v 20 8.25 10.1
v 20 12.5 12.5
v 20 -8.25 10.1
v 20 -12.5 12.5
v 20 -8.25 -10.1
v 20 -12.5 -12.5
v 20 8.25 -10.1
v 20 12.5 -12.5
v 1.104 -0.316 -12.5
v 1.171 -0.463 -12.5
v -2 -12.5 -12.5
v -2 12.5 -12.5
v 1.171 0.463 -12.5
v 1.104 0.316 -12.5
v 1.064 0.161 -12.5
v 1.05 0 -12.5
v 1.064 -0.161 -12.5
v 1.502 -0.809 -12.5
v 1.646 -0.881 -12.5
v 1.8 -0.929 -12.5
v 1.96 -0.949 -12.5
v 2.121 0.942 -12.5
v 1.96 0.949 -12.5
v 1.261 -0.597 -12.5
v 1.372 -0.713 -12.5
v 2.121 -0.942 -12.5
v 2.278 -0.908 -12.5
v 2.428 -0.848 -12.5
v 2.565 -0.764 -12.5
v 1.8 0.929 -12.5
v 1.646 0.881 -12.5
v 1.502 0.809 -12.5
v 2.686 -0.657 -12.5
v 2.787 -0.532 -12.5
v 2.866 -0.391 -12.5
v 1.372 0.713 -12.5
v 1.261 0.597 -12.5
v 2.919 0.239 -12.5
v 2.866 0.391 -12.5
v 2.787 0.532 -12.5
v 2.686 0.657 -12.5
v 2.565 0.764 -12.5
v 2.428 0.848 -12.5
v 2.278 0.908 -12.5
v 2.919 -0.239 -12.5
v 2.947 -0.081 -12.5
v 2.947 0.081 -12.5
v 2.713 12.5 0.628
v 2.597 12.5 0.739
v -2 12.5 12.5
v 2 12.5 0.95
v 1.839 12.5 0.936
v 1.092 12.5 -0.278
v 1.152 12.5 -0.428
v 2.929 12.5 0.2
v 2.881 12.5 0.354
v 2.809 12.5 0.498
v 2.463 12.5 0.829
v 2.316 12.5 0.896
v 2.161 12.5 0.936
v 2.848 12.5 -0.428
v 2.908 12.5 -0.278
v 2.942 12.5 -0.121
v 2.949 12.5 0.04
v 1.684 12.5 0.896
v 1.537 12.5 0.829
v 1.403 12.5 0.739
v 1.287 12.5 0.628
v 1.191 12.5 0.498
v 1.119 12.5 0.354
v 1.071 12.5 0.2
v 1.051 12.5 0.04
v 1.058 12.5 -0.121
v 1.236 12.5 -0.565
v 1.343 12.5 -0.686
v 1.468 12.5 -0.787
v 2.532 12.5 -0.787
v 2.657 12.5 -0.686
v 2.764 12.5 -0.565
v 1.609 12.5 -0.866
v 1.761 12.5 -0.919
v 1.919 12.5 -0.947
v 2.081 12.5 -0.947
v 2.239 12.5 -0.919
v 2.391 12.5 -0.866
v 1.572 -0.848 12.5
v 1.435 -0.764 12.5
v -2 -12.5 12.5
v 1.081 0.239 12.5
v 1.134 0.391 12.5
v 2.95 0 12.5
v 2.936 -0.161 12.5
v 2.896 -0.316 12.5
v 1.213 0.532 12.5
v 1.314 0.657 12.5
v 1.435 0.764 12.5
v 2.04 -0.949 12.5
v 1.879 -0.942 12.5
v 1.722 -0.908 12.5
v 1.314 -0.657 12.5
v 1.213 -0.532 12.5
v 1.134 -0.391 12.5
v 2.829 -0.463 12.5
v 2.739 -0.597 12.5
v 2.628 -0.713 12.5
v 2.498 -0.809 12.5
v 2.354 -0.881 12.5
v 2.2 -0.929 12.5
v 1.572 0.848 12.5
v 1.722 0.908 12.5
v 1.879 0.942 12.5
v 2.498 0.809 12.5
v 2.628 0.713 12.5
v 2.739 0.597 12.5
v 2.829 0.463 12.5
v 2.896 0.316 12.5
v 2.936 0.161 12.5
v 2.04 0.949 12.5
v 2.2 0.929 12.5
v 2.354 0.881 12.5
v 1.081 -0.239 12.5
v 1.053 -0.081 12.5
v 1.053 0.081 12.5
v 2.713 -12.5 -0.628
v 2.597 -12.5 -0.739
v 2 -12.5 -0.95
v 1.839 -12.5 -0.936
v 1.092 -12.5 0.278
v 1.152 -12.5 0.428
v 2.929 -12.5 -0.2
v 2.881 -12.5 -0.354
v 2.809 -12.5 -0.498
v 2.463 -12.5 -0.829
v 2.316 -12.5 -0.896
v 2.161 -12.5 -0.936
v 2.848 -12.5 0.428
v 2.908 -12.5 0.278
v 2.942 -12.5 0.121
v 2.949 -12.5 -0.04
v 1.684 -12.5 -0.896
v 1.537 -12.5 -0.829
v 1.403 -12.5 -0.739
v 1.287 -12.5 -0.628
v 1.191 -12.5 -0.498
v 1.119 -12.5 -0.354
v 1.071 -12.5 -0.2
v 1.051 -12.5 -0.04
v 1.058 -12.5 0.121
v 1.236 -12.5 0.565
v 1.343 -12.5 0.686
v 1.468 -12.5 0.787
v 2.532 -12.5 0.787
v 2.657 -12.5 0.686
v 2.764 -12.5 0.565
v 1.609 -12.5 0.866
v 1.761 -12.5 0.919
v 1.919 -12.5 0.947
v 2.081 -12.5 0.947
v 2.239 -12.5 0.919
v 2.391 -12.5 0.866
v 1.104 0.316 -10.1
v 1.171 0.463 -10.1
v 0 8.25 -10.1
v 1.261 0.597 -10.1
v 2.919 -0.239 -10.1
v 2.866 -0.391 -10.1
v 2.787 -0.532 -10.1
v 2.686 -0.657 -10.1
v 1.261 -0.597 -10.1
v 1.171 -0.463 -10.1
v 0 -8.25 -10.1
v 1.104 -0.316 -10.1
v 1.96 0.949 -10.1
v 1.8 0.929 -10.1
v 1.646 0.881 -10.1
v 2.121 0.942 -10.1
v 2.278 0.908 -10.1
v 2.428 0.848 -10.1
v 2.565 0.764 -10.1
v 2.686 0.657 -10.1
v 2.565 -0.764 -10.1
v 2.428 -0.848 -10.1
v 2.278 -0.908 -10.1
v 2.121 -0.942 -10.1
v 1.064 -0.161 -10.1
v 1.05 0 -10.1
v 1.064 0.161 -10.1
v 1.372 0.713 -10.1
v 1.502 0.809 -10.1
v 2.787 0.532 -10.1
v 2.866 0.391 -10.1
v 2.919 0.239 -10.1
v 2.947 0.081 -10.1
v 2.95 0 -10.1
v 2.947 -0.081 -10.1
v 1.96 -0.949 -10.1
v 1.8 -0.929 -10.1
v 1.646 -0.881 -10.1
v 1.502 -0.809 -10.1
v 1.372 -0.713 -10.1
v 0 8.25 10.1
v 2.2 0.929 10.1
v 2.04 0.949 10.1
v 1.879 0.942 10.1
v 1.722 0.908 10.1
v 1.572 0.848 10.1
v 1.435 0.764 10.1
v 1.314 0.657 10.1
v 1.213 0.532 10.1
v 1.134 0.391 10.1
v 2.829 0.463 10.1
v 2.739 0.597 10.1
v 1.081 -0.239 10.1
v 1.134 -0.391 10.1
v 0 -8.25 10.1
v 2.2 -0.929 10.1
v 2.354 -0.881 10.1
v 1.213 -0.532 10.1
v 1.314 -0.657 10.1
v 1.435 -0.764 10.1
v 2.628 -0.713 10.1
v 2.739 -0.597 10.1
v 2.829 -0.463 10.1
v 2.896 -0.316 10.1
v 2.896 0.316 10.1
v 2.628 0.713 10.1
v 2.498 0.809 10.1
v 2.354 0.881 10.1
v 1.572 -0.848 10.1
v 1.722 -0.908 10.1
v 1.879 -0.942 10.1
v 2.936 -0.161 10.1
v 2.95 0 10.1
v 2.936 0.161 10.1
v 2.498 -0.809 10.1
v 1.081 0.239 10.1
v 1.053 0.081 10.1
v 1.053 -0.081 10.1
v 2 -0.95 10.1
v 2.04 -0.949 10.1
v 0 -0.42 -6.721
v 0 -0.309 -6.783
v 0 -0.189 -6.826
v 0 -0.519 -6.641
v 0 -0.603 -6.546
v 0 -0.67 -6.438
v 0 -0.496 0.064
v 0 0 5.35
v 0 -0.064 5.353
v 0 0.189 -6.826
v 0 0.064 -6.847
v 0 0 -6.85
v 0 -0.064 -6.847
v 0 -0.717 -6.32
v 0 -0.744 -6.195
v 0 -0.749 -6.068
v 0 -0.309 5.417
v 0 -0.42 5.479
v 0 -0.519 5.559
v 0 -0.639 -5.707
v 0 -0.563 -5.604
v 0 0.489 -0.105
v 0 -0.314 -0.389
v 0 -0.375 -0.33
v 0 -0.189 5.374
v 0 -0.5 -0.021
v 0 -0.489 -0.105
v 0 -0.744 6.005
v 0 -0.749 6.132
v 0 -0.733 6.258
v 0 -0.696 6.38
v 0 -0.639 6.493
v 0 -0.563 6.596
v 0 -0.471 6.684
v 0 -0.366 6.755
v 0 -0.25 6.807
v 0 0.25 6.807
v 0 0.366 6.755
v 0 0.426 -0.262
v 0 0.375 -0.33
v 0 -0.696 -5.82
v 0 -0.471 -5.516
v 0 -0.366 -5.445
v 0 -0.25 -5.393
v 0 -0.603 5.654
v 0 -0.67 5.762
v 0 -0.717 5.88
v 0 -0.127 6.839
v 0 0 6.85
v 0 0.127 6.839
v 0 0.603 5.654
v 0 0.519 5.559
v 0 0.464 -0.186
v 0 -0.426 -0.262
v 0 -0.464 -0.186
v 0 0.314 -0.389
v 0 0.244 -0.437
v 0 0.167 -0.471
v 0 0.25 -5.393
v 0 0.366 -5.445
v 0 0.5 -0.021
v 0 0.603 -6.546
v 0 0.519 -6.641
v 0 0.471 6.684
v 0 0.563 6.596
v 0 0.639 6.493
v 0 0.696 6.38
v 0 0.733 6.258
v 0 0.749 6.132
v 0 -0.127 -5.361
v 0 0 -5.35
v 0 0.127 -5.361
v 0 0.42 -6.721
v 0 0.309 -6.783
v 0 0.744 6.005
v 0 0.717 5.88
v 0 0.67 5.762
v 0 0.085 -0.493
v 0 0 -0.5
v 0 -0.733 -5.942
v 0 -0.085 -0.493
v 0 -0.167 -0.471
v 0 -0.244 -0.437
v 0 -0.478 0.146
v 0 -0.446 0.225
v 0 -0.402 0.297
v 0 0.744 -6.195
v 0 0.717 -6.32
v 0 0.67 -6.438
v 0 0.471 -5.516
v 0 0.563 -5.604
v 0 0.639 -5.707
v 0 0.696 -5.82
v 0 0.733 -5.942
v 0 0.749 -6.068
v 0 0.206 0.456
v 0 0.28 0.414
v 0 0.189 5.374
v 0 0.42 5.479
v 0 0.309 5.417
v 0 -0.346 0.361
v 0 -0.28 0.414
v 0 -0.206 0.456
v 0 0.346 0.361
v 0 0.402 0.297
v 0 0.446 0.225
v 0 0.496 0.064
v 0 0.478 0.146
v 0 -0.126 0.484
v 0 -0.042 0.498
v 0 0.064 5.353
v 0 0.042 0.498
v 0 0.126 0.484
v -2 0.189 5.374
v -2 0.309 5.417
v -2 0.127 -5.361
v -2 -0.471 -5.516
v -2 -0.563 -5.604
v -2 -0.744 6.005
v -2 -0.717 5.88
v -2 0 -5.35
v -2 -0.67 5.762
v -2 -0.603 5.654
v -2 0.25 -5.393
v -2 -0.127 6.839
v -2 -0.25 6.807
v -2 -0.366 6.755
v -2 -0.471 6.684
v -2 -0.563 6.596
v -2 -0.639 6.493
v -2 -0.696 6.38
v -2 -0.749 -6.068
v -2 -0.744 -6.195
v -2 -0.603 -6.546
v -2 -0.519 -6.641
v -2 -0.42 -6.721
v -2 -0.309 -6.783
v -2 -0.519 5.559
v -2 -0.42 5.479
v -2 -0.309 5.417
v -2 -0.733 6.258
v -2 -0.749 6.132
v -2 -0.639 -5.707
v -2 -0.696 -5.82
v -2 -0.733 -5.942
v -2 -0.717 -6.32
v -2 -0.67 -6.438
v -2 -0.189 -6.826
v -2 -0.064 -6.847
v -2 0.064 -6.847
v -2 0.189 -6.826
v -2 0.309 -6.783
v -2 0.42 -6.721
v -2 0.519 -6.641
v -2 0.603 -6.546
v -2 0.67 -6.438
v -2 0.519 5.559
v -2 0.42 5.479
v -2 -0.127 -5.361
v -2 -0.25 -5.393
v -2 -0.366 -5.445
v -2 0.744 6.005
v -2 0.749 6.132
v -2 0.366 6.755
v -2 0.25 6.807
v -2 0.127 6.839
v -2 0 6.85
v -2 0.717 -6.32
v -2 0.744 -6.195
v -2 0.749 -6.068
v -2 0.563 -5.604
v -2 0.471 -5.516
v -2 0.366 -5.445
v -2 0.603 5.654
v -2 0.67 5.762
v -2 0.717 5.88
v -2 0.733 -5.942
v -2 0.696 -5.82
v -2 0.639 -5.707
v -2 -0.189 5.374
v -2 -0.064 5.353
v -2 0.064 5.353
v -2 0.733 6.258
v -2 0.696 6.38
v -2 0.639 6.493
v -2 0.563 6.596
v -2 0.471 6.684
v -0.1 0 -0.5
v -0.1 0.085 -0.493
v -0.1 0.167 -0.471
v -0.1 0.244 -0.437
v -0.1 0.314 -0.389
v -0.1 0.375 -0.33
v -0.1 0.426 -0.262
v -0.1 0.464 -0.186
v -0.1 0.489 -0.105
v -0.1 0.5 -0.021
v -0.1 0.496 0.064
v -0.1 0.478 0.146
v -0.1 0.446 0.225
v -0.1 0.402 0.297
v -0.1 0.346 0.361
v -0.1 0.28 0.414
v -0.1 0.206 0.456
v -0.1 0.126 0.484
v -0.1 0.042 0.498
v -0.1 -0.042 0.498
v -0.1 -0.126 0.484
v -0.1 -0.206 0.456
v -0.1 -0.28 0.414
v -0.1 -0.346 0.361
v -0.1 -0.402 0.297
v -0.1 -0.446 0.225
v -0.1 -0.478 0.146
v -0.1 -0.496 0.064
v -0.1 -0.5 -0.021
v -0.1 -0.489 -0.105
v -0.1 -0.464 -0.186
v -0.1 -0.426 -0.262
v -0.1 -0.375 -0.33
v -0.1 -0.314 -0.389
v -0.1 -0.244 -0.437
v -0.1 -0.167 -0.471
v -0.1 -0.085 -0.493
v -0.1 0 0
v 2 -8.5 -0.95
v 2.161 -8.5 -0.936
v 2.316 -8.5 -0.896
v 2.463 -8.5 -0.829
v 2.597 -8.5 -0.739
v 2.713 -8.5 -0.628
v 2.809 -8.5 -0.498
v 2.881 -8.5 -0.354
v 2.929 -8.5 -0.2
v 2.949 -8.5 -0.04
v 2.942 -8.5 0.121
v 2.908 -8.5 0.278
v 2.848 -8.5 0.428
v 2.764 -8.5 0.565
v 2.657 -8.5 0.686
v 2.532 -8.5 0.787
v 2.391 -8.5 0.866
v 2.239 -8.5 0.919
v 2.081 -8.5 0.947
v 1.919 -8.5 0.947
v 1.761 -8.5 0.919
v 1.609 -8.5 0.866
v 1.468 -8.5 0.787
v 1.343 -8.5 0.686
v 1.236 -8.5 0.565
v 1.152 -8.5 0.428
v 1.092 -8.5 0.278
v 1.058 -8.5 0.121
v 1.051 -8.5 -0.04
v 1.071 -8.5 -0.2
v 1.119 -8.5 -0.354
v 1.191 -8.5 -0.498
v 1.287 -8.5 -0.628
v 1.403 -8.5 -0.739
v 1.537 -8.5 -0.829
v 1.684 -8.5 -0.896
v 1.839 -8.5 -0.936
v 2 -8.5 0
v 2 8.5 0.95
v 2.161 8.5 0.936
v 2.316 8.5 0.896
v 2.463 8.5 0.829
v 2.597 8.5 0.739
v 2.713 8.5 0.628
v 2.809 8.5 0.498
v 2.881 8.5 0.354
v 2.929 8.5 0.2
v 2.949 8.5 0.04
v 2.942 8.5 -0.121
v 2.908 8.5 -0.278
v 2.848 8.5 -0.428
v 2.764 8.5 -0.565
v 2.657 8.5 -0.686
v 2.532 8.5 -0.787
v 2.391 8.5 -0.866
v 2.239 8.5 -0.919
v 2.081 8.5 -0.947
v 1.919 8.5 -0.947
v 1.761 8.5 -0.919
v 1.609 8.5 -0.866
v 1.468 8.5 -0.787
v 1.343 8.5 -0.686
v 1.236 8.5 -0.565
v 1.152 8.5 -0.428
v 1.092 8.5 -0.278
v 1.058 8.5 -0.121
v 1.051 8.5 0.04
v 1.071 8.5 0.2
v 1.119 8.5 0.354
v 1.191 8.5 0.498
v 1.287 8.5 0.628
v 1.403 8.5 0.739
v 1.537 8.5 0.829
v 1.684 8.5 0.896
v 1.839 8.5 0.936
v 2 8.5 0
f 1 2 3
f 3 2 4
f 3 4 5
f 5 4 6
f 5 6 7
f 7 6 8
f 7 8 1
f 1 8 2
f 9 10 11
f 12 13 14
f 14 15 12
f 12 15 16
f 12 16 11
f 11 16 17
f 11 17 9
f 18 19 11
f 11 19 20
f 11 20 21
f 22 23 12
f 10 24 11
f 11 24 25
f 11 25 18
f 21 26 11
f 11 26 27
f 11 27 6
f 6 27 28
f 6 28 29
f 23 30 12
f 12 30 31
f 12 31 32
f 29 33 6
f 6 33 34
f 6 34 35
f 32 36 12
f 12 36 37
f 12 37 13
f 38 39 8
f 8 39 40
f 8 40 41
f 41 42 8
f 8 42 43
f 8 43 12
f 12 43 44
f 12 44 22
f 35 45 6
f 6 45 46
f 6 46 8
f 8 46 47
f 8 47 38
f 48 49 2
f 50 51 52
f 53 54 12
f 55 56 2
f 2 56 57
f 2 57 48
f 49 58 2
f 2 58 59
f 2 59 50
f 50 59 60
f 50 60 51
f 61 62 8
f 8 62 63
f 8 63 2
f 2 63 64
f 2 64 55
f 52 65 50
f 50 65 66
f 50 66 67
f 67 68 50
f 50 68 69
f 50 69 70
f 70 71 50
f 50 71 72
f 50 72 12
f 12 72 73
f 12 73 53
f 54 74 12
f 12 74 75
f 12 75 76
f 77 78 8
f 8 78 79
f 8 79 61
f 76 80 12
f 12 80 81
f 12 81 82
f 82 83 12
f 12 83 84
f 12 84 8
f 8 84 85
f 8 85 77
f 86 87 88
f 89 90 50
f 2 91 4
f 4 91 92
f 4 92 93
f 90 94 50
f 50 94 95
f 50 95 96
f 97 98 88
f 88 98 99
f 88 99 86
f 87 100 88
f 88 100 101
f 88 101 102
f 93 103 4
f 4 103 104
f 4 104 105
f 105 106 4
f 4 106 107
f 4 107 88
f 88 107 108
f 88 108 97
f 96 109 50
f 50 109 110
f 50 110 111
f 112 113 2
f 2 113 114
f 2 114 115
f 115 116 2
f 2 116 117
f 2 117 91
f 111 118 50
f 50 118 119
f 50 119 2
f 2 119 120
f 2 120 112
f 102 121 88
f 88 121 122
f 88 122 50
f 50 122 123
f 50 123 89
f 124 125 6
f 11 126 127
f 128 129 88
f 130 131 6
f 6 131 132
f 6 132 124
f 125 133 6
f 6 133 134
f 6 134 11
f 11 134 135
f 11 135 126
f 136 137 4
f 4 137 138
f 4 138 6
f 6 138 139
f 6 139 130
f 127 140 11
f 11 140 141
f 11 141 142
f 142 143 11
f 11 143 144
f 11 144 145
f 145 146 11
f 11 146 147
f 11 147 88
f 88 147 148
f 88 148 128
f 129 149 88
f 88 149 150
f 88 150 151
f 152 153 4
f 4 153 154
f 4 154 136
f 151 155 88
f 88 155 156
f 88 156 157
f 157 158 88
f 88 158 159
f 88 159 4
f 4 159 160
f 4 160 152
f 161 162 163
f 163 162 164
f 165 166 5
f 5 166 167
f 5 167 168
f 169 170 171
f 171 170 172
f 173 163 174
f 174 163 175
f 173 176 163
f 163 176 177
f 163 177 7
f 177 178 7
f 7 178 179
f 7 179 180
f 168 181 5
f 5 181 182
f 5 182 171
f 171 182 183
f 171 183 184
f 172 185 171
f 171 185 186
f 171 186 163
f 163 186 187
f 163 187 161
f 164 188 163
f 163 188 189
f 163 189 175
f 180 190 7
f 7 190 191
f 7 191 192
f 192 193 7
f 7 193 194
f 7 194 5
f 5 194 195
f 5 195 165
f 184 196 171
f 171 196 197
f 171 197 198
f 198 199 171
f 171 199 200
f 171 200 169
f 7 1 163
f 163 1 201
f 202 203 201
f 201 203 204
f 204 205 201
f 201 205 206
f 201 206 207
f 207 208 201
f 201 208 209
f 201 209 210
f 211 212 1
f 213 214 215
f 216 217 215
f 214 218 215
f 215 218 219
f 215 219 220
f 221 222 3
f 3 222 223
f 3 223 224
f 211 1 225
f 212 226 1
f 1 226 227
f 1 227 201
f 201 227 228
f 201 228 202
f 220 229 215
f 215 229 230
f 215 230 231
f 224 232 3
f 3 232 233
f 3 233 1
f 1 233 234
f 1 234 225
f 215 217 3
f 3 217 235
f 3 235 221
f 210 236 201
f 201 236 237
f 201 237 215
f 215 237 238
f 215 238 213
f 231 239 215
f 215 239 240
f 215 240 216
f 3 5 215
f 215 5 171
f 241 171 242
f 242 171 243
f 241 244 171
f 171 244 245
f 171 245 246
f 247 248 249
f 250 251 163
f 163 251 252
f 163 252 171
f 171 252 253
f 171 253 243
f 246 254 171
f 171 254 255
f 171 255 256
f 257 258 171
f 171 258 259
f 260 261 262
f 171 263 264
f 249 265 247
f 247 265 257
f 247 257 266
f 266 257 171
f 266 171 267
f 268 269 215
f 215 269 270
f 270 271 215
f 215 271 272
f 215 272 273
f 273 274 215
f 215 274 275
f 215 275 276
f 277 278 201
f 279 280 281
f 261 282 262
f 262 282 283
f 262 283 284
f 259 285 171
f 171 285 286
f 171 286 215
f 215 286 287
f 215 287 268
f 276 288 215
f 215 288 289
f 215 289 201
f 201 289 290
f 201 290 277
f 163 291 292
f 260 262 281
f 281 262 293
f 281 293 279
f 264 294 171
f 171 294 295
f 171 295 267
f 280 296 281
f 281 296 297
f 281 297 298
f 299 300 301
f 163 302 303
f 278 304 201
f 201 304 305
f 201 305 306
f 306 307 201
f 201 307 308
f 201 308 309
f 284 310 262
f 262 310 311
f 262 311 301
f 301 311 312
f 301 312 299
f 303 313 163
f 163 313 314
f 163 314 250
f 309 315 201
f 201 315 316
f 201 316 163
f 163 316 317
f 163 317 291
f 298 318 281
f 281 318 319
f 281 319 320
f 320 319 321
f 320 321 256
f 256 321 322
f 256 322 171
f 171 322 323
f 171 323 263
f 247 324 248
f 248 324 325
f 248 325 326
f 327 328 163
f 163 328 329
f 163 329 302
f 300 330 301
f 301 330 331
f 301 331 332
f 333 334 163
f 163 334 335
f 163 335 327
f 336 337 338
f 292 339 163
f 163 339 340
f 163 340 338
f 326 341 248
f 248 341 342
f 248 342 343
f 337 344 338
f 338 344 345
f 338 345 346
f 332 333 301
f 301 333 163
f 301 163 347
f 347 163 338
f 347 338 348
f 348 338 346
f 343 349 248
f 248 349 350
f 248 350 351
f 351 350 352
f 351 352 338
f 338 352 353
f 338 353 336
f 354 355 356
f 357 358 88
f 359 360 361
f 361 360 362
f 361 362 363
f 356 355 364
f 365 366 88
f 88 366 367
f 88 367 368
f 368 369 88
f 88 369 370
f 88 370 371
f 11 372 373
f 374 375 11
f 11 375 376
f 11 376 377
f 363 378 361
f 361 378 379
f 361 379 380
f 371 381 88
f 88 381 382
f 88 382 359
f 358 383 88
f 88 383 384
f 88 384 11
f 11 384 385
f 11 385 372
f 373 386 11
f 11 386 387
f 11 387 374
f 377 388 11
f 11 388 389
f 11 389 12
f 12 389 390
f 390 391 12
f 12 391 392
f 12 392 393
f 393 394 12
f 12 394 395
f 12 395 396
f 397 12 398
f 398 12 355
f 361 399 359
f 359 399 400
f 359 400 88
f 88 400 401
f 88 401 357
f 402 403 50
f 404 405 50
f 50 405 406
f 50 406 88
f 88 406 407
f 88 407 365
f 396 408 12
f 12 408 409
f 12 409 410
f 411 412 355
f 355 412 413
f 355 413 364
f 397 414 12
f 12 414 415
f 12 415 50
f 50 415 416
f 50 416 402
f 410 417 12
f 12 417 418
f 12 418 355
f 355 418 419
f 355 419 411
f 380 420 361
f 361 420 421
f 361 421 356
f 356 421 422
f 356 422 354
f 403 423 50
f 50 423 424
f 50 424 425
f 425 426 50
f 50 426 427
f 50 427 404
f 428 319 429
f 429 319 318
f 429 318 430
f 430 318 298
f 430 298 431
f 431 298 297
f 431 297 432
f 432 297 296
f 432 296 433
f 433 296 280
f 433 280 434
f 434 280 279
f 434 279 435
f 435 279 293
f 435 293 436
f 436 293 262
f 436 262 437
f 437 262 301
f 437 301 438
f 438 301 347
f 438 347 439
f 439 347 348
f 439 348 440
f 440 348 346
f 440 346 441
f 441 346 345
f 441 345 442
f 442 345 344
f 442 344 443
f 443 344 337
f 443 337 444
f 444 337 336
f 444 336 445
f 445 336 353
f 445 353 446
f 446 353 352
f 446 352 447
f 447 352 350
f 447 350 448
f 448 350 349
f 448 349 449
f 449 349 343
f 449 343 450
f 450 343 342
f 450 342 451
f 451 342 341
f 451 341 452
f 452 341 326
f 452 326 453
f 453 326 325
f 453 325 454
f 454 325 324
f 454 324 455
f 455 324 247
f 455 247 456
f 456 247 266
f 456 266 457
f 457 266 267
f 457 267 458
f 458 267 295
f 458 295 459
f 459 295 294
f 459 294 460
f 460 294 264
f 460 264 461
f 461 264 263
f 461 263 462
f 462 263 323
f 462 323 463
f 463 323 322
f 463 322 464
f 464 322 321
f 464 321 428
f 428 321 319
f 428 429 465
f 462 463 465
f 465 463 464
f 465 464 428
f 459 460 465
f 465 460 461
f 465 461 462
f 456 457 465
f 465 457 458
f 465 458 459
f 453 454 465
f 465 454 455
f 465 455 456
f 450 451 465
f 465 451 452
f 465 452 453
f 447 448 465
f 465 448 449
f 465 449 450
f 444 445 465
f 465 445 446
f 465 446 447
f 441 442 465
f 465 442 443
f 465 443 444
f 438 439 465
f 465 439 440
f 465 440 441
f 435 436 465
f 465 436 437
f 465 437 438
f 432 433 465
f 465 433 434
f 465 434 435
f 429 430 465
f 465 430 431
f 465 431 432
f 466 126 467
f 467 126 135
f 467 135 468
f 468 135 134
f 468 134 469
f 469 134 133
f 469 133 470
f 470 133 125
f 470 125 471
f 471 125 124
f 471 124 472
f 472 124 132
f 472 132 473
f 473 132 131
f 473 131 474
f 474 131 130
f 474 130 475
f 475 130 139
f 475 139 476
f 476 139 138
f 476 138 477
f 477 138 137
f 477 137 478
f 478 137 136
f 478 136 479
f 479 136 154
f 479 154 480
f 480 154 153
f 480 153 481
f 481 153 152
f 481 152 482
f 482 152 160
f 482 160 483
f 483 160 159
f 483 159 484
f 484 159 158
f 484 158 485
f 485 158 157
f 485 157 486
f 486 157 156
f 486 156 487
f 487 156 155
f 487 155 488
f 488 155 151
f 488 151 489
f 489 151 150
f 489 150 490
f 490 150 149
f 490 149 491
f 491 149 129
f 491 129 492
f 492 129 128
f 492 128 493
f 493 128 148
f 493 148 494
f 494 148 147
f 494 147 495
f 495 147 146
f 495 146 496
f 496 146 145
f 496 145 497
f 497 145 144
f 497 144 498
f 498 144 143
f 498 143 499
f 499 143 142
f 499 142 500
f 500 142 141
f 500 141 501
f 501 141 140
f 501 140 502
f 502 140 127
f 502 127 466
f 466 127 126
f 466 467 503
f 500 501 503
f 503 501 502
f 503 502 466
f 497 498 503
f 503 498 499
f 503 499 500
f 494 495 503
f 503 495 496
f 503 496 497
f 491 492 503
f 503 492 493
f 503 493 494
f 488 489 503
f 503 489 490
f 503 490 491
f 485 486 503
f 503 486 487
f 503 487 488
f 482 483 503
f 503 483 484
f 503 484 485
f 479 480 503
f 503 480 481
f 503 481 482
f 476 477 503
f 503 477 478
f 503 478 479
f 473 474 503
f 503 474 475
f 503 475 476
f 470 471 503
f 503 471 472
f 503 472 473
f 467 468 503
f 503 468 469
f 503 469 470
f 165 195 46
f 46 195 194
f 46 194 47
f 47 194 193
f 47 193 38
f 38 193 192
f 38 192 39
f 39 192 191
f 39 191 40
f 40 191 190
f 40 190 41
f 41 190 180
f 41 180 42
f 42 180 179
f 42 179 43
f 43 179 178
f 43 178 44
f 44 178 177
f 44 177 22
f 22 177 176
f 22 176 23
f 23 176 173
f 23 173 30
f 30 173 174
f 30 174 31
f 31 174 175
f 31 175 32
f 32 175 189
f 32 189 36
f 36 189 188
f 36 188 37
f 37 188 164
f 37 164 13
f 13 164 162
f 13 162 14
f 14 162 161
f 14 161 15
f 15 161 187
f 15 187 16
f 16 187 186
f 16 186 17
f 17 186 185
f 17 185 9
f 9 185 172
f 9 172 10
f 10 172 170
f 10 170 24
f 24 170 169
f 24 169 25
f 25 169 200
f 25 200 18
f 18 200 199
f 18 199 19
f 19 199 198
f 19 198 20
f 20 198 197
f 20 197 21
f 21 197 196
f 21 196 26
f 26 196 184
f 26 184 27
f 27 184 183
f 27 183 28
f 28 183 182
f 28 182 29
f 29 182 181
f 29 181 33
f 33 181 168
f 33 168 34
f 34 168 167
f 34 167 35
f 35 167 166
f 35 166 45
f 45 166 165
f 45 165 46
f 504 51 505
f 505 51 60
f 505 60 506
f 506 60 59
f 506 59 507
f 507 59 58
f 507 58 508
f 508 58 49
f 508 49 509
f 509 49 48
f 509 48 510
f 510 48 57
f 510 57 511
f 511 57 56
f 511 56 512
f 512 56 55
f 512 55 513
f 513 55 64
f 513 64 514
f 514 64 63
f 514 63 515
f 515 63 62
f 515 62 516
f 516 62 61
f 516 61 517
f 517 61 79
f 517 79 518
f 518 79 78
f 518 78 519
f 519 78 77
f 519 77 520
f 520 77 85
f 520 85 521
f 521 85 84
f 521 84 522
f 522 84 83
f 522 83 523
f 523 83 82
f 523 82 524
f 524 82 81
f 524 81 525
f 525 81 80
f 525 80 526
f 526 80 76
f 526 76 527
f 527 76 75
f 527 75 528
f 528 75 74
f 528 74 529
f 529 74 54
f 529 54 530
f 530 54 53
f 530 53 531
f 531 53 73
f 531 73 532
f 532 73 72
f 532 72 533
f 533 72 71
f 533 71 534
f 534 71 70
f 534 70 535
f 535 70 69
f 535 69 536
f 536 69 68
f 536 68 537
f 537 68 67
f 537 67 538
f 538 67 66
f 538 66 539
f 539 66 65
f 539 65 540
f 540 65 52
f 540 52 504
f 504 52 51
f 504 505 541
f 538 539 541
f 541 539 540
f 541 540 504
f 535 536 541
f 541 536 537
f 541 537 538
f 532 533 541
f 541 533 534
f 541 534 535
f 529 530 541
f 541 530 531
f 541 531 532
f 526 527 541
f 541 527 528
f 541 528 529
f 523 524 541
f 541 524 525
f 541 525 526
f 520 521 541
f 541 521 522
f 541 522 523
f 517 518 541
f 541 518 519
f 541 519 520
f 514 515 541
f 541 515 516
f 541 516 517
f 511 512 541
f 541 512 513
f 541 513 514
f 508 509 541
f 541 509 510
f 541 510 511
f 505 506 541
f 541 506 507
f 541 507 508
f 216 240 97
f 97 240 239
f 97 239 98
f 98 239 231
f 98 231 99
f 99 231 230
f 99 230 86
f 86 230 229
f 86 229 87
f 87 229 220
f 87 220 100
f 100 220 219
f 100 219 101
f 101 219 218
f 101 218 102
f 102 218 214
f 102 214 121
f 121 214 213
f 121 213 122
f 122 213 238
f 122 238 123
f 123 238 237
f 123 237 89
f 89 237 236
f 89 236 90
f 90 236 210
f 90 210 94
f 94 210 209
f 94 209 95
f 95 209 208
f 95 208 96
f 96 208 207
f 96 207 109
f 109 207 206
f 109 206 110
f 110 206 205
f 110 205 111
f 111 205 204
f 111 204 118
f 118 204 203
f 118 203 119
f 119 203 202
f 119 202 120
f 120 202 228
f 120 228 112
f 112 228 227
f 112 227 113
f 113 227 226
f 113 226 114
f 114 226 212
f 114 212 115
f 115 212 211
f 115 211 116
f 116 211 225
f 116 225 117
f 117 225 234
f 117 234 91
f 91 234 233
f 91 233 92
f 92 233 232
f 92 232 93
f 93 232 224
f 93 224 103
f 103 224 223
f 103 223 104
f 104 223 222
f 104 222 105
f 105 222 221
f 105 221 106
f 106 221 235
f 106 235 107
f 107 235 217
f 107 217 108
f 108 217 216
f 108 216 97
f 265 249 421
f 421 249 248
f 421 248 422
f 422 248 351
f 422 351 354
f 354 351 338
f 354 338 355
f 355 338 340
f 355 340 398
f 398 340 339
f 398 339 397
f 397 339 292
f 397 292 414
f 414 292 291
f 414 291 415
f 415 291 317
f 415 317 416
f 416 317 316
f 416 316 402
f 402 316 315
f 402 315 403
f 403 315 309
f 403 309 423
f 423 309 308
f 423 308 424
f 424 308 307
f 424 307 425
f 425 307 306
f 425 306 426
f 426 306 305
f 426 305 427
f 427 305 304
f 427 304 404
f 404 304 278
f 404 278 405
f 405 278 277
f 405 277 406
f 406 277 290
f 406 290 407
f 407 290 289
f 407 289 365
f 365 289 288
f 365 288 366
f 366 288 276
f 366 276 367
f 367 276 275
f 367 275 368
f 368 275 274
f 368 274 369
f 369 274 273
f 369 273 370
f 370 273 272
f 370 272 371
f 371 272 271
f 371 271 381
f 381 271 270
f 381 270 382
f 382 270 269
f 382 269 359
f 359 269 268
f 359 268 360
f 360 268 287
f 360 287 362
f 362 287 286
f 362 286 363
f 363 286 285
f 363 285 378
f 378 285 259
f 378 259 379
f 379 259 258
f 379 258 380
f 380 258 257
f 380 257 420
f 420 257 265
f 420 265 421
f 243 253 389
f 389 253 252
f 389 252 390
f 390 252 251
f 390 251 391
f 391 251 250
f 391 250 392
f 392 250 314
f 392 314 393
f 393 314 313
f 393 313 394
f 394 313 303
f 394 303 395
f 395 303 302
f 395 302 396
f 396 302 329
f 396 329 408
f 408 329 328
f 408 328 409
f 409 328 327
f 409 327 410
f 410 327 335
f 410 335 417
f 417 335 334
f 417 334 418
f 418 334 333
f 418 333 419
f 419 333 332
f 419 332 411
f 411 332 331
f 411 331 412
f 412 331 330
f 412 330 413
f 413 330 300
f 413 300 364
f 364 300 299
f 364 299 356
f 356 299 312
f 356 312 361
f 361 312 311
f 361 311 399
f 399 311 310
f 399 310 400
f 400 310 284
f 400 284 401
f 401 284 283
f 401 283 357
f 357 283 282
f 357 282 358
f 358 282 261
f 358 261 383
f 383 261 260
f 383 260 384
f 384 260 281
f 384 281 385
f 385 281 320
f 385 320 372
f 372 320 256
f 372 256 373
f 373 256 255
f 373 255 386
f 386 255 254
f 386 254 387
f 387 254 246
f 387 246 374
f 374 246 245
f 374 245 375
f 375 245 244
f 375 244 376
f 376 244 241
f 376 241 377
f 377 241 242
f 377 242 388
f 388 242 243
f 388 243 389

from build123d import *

# Parameters (mm, degrees)
SKETCH_1_W          = 25
SKETCH_1_H          = 25
SKETCH_1_W_2        = 20.2
SKETCH_1_H_2        = 16.5
EXTRUDE_1_DEPTH     = 20
SKETCH_1_3_W        = 25
SKETCH_1_3_H        = 25
EXTRUDE_3_DEPTH     = 2
SKETCH_1_5_R        = 0.5
CUT_EXTRUDE_1_DEPTH = 0.1
SKETCH_2_R          = 0.95
CUT_EXTRUDE_2_DEPTH = 4
SKETCH_3_R          = 0.95
CUT_EXTRUDE_3_DEPTH = 4
CUT_EXTRUDE_START   = -4
SKETCH_4_R          = 0.95
CUT_EXTRUDE_4_DEPTH = 4
SKETCH_5_R          = 0.95
CUT_EXTRUDE_5_DEPTH = 4
SKETCH_6_R          = 0.75
CUT_EXTRUDE_6_DEPTH = 2


with BuildPart() as part:
    # 草图1 → 凸台-拉伸1 (new body)
    with BuildSketch(Plane(origin=(0, 0, 0), x_dir=(0, 0, -1), z_dir=(1, 0, 0))):
        Rectangle(SKETCH_1_W, SKETCH_1_H)
        Rectangle(SKETCH_1_W_2, SKETCH_1_H_2, mode=Mode.SUBTRACT)
    extrude(amount=EXTRUDE_1_DEPTH)

    # 草图1<3> → 凸台-拉伸3 (add)
    with BuildSketch(Plane(origin=(0, 0, 0), x_dir=(0, 0, -1), z_dir=(1, 0, 0))):
        Rectangle(SKETCH_1_3_W, SKETCH_1_3_H)
    extrude(amount=-EXTRUDE_3_DEPTH)

    # 草图1<5> → 切除-拉伸1 (cut)
    with BuildSketch(Plane(origin=(0, 0, 0), x_dir=(0, 0, -1), z_dir=(1, 0, 0))):
        Circle(SKETCH_1_5_R)
    extrude(amount=-CUT_EXTRUDE_1_DEPTH, mode=Mode.SUBTRACT)

    # 草图2 → 切除-拉伸2 (cut)
    with BuildSketch(Plane.XZ.offset(12.5)):
        with Locations(Location((2, 0, 0), (0, 0, 270))):
            Circle(SKETCH_2_R)
    extrude(amount=-CUT_EXTRUDE_2_DEPTH, mode=Mode.SUBTRACT)

    # 草图3 → 切除-拉伸3 (cut)
    with BuildSketch(Plane(origin=(0, 0, -12.5), x_dir=(-1, 0, 0), z_dir=(0, 0, -1))):
        with Locations((-2, 0)):
            Circle(SKETCH_3_R)
    extrude(amount=-CUT_EXTRUDE_3_DEPTH, mode=Mode.SUBTRACT)

    # 草图4 → 切除-拉伸4 (cut)
    with BuildSketch(Plane(origin=(0, 12.5, 0), x_dir=(1, 0, 0), z_dir=(0, 1, 0)).offset(CUT_EXTRUDE_START)):
        with Locations(Location((2, 0, 0), (0, 0, 90))):
            Circle(SKETCH_4_R)
    extrude(amount=CUT_EXTRUDE_4_DEPTH, mode=Mode.SUBTRACT)

    # 草图5 → 切除-拉伸5 (cut)
    with BuildSketch(Plane.XY.offset(12.5).offset(CUT_EXTRUDE_START)):
        with Locations(Location((2, 0, 0), (0, 0, 180))):
            Circle(SKETCH_5_R)
    extrude(amount=CUT_EXTRUDE_5_DEPTH, mode=Mode.SUBTRACT)

    # 草图6 → 切除-拉伸6 (cut)
    with BuildSketch(Plane.ZY.offset(2)):
        with Locations((-6.1, 0)):
            Circle(SKETCH_6_R)
        with Locations((6.1, 0)):
            Circle(SKETCH_6_R)
    extrude(amount=-CUT_EXTRUDE_6_DEPTH, mode=Mode.SUBTRACT)


solid = part.part
